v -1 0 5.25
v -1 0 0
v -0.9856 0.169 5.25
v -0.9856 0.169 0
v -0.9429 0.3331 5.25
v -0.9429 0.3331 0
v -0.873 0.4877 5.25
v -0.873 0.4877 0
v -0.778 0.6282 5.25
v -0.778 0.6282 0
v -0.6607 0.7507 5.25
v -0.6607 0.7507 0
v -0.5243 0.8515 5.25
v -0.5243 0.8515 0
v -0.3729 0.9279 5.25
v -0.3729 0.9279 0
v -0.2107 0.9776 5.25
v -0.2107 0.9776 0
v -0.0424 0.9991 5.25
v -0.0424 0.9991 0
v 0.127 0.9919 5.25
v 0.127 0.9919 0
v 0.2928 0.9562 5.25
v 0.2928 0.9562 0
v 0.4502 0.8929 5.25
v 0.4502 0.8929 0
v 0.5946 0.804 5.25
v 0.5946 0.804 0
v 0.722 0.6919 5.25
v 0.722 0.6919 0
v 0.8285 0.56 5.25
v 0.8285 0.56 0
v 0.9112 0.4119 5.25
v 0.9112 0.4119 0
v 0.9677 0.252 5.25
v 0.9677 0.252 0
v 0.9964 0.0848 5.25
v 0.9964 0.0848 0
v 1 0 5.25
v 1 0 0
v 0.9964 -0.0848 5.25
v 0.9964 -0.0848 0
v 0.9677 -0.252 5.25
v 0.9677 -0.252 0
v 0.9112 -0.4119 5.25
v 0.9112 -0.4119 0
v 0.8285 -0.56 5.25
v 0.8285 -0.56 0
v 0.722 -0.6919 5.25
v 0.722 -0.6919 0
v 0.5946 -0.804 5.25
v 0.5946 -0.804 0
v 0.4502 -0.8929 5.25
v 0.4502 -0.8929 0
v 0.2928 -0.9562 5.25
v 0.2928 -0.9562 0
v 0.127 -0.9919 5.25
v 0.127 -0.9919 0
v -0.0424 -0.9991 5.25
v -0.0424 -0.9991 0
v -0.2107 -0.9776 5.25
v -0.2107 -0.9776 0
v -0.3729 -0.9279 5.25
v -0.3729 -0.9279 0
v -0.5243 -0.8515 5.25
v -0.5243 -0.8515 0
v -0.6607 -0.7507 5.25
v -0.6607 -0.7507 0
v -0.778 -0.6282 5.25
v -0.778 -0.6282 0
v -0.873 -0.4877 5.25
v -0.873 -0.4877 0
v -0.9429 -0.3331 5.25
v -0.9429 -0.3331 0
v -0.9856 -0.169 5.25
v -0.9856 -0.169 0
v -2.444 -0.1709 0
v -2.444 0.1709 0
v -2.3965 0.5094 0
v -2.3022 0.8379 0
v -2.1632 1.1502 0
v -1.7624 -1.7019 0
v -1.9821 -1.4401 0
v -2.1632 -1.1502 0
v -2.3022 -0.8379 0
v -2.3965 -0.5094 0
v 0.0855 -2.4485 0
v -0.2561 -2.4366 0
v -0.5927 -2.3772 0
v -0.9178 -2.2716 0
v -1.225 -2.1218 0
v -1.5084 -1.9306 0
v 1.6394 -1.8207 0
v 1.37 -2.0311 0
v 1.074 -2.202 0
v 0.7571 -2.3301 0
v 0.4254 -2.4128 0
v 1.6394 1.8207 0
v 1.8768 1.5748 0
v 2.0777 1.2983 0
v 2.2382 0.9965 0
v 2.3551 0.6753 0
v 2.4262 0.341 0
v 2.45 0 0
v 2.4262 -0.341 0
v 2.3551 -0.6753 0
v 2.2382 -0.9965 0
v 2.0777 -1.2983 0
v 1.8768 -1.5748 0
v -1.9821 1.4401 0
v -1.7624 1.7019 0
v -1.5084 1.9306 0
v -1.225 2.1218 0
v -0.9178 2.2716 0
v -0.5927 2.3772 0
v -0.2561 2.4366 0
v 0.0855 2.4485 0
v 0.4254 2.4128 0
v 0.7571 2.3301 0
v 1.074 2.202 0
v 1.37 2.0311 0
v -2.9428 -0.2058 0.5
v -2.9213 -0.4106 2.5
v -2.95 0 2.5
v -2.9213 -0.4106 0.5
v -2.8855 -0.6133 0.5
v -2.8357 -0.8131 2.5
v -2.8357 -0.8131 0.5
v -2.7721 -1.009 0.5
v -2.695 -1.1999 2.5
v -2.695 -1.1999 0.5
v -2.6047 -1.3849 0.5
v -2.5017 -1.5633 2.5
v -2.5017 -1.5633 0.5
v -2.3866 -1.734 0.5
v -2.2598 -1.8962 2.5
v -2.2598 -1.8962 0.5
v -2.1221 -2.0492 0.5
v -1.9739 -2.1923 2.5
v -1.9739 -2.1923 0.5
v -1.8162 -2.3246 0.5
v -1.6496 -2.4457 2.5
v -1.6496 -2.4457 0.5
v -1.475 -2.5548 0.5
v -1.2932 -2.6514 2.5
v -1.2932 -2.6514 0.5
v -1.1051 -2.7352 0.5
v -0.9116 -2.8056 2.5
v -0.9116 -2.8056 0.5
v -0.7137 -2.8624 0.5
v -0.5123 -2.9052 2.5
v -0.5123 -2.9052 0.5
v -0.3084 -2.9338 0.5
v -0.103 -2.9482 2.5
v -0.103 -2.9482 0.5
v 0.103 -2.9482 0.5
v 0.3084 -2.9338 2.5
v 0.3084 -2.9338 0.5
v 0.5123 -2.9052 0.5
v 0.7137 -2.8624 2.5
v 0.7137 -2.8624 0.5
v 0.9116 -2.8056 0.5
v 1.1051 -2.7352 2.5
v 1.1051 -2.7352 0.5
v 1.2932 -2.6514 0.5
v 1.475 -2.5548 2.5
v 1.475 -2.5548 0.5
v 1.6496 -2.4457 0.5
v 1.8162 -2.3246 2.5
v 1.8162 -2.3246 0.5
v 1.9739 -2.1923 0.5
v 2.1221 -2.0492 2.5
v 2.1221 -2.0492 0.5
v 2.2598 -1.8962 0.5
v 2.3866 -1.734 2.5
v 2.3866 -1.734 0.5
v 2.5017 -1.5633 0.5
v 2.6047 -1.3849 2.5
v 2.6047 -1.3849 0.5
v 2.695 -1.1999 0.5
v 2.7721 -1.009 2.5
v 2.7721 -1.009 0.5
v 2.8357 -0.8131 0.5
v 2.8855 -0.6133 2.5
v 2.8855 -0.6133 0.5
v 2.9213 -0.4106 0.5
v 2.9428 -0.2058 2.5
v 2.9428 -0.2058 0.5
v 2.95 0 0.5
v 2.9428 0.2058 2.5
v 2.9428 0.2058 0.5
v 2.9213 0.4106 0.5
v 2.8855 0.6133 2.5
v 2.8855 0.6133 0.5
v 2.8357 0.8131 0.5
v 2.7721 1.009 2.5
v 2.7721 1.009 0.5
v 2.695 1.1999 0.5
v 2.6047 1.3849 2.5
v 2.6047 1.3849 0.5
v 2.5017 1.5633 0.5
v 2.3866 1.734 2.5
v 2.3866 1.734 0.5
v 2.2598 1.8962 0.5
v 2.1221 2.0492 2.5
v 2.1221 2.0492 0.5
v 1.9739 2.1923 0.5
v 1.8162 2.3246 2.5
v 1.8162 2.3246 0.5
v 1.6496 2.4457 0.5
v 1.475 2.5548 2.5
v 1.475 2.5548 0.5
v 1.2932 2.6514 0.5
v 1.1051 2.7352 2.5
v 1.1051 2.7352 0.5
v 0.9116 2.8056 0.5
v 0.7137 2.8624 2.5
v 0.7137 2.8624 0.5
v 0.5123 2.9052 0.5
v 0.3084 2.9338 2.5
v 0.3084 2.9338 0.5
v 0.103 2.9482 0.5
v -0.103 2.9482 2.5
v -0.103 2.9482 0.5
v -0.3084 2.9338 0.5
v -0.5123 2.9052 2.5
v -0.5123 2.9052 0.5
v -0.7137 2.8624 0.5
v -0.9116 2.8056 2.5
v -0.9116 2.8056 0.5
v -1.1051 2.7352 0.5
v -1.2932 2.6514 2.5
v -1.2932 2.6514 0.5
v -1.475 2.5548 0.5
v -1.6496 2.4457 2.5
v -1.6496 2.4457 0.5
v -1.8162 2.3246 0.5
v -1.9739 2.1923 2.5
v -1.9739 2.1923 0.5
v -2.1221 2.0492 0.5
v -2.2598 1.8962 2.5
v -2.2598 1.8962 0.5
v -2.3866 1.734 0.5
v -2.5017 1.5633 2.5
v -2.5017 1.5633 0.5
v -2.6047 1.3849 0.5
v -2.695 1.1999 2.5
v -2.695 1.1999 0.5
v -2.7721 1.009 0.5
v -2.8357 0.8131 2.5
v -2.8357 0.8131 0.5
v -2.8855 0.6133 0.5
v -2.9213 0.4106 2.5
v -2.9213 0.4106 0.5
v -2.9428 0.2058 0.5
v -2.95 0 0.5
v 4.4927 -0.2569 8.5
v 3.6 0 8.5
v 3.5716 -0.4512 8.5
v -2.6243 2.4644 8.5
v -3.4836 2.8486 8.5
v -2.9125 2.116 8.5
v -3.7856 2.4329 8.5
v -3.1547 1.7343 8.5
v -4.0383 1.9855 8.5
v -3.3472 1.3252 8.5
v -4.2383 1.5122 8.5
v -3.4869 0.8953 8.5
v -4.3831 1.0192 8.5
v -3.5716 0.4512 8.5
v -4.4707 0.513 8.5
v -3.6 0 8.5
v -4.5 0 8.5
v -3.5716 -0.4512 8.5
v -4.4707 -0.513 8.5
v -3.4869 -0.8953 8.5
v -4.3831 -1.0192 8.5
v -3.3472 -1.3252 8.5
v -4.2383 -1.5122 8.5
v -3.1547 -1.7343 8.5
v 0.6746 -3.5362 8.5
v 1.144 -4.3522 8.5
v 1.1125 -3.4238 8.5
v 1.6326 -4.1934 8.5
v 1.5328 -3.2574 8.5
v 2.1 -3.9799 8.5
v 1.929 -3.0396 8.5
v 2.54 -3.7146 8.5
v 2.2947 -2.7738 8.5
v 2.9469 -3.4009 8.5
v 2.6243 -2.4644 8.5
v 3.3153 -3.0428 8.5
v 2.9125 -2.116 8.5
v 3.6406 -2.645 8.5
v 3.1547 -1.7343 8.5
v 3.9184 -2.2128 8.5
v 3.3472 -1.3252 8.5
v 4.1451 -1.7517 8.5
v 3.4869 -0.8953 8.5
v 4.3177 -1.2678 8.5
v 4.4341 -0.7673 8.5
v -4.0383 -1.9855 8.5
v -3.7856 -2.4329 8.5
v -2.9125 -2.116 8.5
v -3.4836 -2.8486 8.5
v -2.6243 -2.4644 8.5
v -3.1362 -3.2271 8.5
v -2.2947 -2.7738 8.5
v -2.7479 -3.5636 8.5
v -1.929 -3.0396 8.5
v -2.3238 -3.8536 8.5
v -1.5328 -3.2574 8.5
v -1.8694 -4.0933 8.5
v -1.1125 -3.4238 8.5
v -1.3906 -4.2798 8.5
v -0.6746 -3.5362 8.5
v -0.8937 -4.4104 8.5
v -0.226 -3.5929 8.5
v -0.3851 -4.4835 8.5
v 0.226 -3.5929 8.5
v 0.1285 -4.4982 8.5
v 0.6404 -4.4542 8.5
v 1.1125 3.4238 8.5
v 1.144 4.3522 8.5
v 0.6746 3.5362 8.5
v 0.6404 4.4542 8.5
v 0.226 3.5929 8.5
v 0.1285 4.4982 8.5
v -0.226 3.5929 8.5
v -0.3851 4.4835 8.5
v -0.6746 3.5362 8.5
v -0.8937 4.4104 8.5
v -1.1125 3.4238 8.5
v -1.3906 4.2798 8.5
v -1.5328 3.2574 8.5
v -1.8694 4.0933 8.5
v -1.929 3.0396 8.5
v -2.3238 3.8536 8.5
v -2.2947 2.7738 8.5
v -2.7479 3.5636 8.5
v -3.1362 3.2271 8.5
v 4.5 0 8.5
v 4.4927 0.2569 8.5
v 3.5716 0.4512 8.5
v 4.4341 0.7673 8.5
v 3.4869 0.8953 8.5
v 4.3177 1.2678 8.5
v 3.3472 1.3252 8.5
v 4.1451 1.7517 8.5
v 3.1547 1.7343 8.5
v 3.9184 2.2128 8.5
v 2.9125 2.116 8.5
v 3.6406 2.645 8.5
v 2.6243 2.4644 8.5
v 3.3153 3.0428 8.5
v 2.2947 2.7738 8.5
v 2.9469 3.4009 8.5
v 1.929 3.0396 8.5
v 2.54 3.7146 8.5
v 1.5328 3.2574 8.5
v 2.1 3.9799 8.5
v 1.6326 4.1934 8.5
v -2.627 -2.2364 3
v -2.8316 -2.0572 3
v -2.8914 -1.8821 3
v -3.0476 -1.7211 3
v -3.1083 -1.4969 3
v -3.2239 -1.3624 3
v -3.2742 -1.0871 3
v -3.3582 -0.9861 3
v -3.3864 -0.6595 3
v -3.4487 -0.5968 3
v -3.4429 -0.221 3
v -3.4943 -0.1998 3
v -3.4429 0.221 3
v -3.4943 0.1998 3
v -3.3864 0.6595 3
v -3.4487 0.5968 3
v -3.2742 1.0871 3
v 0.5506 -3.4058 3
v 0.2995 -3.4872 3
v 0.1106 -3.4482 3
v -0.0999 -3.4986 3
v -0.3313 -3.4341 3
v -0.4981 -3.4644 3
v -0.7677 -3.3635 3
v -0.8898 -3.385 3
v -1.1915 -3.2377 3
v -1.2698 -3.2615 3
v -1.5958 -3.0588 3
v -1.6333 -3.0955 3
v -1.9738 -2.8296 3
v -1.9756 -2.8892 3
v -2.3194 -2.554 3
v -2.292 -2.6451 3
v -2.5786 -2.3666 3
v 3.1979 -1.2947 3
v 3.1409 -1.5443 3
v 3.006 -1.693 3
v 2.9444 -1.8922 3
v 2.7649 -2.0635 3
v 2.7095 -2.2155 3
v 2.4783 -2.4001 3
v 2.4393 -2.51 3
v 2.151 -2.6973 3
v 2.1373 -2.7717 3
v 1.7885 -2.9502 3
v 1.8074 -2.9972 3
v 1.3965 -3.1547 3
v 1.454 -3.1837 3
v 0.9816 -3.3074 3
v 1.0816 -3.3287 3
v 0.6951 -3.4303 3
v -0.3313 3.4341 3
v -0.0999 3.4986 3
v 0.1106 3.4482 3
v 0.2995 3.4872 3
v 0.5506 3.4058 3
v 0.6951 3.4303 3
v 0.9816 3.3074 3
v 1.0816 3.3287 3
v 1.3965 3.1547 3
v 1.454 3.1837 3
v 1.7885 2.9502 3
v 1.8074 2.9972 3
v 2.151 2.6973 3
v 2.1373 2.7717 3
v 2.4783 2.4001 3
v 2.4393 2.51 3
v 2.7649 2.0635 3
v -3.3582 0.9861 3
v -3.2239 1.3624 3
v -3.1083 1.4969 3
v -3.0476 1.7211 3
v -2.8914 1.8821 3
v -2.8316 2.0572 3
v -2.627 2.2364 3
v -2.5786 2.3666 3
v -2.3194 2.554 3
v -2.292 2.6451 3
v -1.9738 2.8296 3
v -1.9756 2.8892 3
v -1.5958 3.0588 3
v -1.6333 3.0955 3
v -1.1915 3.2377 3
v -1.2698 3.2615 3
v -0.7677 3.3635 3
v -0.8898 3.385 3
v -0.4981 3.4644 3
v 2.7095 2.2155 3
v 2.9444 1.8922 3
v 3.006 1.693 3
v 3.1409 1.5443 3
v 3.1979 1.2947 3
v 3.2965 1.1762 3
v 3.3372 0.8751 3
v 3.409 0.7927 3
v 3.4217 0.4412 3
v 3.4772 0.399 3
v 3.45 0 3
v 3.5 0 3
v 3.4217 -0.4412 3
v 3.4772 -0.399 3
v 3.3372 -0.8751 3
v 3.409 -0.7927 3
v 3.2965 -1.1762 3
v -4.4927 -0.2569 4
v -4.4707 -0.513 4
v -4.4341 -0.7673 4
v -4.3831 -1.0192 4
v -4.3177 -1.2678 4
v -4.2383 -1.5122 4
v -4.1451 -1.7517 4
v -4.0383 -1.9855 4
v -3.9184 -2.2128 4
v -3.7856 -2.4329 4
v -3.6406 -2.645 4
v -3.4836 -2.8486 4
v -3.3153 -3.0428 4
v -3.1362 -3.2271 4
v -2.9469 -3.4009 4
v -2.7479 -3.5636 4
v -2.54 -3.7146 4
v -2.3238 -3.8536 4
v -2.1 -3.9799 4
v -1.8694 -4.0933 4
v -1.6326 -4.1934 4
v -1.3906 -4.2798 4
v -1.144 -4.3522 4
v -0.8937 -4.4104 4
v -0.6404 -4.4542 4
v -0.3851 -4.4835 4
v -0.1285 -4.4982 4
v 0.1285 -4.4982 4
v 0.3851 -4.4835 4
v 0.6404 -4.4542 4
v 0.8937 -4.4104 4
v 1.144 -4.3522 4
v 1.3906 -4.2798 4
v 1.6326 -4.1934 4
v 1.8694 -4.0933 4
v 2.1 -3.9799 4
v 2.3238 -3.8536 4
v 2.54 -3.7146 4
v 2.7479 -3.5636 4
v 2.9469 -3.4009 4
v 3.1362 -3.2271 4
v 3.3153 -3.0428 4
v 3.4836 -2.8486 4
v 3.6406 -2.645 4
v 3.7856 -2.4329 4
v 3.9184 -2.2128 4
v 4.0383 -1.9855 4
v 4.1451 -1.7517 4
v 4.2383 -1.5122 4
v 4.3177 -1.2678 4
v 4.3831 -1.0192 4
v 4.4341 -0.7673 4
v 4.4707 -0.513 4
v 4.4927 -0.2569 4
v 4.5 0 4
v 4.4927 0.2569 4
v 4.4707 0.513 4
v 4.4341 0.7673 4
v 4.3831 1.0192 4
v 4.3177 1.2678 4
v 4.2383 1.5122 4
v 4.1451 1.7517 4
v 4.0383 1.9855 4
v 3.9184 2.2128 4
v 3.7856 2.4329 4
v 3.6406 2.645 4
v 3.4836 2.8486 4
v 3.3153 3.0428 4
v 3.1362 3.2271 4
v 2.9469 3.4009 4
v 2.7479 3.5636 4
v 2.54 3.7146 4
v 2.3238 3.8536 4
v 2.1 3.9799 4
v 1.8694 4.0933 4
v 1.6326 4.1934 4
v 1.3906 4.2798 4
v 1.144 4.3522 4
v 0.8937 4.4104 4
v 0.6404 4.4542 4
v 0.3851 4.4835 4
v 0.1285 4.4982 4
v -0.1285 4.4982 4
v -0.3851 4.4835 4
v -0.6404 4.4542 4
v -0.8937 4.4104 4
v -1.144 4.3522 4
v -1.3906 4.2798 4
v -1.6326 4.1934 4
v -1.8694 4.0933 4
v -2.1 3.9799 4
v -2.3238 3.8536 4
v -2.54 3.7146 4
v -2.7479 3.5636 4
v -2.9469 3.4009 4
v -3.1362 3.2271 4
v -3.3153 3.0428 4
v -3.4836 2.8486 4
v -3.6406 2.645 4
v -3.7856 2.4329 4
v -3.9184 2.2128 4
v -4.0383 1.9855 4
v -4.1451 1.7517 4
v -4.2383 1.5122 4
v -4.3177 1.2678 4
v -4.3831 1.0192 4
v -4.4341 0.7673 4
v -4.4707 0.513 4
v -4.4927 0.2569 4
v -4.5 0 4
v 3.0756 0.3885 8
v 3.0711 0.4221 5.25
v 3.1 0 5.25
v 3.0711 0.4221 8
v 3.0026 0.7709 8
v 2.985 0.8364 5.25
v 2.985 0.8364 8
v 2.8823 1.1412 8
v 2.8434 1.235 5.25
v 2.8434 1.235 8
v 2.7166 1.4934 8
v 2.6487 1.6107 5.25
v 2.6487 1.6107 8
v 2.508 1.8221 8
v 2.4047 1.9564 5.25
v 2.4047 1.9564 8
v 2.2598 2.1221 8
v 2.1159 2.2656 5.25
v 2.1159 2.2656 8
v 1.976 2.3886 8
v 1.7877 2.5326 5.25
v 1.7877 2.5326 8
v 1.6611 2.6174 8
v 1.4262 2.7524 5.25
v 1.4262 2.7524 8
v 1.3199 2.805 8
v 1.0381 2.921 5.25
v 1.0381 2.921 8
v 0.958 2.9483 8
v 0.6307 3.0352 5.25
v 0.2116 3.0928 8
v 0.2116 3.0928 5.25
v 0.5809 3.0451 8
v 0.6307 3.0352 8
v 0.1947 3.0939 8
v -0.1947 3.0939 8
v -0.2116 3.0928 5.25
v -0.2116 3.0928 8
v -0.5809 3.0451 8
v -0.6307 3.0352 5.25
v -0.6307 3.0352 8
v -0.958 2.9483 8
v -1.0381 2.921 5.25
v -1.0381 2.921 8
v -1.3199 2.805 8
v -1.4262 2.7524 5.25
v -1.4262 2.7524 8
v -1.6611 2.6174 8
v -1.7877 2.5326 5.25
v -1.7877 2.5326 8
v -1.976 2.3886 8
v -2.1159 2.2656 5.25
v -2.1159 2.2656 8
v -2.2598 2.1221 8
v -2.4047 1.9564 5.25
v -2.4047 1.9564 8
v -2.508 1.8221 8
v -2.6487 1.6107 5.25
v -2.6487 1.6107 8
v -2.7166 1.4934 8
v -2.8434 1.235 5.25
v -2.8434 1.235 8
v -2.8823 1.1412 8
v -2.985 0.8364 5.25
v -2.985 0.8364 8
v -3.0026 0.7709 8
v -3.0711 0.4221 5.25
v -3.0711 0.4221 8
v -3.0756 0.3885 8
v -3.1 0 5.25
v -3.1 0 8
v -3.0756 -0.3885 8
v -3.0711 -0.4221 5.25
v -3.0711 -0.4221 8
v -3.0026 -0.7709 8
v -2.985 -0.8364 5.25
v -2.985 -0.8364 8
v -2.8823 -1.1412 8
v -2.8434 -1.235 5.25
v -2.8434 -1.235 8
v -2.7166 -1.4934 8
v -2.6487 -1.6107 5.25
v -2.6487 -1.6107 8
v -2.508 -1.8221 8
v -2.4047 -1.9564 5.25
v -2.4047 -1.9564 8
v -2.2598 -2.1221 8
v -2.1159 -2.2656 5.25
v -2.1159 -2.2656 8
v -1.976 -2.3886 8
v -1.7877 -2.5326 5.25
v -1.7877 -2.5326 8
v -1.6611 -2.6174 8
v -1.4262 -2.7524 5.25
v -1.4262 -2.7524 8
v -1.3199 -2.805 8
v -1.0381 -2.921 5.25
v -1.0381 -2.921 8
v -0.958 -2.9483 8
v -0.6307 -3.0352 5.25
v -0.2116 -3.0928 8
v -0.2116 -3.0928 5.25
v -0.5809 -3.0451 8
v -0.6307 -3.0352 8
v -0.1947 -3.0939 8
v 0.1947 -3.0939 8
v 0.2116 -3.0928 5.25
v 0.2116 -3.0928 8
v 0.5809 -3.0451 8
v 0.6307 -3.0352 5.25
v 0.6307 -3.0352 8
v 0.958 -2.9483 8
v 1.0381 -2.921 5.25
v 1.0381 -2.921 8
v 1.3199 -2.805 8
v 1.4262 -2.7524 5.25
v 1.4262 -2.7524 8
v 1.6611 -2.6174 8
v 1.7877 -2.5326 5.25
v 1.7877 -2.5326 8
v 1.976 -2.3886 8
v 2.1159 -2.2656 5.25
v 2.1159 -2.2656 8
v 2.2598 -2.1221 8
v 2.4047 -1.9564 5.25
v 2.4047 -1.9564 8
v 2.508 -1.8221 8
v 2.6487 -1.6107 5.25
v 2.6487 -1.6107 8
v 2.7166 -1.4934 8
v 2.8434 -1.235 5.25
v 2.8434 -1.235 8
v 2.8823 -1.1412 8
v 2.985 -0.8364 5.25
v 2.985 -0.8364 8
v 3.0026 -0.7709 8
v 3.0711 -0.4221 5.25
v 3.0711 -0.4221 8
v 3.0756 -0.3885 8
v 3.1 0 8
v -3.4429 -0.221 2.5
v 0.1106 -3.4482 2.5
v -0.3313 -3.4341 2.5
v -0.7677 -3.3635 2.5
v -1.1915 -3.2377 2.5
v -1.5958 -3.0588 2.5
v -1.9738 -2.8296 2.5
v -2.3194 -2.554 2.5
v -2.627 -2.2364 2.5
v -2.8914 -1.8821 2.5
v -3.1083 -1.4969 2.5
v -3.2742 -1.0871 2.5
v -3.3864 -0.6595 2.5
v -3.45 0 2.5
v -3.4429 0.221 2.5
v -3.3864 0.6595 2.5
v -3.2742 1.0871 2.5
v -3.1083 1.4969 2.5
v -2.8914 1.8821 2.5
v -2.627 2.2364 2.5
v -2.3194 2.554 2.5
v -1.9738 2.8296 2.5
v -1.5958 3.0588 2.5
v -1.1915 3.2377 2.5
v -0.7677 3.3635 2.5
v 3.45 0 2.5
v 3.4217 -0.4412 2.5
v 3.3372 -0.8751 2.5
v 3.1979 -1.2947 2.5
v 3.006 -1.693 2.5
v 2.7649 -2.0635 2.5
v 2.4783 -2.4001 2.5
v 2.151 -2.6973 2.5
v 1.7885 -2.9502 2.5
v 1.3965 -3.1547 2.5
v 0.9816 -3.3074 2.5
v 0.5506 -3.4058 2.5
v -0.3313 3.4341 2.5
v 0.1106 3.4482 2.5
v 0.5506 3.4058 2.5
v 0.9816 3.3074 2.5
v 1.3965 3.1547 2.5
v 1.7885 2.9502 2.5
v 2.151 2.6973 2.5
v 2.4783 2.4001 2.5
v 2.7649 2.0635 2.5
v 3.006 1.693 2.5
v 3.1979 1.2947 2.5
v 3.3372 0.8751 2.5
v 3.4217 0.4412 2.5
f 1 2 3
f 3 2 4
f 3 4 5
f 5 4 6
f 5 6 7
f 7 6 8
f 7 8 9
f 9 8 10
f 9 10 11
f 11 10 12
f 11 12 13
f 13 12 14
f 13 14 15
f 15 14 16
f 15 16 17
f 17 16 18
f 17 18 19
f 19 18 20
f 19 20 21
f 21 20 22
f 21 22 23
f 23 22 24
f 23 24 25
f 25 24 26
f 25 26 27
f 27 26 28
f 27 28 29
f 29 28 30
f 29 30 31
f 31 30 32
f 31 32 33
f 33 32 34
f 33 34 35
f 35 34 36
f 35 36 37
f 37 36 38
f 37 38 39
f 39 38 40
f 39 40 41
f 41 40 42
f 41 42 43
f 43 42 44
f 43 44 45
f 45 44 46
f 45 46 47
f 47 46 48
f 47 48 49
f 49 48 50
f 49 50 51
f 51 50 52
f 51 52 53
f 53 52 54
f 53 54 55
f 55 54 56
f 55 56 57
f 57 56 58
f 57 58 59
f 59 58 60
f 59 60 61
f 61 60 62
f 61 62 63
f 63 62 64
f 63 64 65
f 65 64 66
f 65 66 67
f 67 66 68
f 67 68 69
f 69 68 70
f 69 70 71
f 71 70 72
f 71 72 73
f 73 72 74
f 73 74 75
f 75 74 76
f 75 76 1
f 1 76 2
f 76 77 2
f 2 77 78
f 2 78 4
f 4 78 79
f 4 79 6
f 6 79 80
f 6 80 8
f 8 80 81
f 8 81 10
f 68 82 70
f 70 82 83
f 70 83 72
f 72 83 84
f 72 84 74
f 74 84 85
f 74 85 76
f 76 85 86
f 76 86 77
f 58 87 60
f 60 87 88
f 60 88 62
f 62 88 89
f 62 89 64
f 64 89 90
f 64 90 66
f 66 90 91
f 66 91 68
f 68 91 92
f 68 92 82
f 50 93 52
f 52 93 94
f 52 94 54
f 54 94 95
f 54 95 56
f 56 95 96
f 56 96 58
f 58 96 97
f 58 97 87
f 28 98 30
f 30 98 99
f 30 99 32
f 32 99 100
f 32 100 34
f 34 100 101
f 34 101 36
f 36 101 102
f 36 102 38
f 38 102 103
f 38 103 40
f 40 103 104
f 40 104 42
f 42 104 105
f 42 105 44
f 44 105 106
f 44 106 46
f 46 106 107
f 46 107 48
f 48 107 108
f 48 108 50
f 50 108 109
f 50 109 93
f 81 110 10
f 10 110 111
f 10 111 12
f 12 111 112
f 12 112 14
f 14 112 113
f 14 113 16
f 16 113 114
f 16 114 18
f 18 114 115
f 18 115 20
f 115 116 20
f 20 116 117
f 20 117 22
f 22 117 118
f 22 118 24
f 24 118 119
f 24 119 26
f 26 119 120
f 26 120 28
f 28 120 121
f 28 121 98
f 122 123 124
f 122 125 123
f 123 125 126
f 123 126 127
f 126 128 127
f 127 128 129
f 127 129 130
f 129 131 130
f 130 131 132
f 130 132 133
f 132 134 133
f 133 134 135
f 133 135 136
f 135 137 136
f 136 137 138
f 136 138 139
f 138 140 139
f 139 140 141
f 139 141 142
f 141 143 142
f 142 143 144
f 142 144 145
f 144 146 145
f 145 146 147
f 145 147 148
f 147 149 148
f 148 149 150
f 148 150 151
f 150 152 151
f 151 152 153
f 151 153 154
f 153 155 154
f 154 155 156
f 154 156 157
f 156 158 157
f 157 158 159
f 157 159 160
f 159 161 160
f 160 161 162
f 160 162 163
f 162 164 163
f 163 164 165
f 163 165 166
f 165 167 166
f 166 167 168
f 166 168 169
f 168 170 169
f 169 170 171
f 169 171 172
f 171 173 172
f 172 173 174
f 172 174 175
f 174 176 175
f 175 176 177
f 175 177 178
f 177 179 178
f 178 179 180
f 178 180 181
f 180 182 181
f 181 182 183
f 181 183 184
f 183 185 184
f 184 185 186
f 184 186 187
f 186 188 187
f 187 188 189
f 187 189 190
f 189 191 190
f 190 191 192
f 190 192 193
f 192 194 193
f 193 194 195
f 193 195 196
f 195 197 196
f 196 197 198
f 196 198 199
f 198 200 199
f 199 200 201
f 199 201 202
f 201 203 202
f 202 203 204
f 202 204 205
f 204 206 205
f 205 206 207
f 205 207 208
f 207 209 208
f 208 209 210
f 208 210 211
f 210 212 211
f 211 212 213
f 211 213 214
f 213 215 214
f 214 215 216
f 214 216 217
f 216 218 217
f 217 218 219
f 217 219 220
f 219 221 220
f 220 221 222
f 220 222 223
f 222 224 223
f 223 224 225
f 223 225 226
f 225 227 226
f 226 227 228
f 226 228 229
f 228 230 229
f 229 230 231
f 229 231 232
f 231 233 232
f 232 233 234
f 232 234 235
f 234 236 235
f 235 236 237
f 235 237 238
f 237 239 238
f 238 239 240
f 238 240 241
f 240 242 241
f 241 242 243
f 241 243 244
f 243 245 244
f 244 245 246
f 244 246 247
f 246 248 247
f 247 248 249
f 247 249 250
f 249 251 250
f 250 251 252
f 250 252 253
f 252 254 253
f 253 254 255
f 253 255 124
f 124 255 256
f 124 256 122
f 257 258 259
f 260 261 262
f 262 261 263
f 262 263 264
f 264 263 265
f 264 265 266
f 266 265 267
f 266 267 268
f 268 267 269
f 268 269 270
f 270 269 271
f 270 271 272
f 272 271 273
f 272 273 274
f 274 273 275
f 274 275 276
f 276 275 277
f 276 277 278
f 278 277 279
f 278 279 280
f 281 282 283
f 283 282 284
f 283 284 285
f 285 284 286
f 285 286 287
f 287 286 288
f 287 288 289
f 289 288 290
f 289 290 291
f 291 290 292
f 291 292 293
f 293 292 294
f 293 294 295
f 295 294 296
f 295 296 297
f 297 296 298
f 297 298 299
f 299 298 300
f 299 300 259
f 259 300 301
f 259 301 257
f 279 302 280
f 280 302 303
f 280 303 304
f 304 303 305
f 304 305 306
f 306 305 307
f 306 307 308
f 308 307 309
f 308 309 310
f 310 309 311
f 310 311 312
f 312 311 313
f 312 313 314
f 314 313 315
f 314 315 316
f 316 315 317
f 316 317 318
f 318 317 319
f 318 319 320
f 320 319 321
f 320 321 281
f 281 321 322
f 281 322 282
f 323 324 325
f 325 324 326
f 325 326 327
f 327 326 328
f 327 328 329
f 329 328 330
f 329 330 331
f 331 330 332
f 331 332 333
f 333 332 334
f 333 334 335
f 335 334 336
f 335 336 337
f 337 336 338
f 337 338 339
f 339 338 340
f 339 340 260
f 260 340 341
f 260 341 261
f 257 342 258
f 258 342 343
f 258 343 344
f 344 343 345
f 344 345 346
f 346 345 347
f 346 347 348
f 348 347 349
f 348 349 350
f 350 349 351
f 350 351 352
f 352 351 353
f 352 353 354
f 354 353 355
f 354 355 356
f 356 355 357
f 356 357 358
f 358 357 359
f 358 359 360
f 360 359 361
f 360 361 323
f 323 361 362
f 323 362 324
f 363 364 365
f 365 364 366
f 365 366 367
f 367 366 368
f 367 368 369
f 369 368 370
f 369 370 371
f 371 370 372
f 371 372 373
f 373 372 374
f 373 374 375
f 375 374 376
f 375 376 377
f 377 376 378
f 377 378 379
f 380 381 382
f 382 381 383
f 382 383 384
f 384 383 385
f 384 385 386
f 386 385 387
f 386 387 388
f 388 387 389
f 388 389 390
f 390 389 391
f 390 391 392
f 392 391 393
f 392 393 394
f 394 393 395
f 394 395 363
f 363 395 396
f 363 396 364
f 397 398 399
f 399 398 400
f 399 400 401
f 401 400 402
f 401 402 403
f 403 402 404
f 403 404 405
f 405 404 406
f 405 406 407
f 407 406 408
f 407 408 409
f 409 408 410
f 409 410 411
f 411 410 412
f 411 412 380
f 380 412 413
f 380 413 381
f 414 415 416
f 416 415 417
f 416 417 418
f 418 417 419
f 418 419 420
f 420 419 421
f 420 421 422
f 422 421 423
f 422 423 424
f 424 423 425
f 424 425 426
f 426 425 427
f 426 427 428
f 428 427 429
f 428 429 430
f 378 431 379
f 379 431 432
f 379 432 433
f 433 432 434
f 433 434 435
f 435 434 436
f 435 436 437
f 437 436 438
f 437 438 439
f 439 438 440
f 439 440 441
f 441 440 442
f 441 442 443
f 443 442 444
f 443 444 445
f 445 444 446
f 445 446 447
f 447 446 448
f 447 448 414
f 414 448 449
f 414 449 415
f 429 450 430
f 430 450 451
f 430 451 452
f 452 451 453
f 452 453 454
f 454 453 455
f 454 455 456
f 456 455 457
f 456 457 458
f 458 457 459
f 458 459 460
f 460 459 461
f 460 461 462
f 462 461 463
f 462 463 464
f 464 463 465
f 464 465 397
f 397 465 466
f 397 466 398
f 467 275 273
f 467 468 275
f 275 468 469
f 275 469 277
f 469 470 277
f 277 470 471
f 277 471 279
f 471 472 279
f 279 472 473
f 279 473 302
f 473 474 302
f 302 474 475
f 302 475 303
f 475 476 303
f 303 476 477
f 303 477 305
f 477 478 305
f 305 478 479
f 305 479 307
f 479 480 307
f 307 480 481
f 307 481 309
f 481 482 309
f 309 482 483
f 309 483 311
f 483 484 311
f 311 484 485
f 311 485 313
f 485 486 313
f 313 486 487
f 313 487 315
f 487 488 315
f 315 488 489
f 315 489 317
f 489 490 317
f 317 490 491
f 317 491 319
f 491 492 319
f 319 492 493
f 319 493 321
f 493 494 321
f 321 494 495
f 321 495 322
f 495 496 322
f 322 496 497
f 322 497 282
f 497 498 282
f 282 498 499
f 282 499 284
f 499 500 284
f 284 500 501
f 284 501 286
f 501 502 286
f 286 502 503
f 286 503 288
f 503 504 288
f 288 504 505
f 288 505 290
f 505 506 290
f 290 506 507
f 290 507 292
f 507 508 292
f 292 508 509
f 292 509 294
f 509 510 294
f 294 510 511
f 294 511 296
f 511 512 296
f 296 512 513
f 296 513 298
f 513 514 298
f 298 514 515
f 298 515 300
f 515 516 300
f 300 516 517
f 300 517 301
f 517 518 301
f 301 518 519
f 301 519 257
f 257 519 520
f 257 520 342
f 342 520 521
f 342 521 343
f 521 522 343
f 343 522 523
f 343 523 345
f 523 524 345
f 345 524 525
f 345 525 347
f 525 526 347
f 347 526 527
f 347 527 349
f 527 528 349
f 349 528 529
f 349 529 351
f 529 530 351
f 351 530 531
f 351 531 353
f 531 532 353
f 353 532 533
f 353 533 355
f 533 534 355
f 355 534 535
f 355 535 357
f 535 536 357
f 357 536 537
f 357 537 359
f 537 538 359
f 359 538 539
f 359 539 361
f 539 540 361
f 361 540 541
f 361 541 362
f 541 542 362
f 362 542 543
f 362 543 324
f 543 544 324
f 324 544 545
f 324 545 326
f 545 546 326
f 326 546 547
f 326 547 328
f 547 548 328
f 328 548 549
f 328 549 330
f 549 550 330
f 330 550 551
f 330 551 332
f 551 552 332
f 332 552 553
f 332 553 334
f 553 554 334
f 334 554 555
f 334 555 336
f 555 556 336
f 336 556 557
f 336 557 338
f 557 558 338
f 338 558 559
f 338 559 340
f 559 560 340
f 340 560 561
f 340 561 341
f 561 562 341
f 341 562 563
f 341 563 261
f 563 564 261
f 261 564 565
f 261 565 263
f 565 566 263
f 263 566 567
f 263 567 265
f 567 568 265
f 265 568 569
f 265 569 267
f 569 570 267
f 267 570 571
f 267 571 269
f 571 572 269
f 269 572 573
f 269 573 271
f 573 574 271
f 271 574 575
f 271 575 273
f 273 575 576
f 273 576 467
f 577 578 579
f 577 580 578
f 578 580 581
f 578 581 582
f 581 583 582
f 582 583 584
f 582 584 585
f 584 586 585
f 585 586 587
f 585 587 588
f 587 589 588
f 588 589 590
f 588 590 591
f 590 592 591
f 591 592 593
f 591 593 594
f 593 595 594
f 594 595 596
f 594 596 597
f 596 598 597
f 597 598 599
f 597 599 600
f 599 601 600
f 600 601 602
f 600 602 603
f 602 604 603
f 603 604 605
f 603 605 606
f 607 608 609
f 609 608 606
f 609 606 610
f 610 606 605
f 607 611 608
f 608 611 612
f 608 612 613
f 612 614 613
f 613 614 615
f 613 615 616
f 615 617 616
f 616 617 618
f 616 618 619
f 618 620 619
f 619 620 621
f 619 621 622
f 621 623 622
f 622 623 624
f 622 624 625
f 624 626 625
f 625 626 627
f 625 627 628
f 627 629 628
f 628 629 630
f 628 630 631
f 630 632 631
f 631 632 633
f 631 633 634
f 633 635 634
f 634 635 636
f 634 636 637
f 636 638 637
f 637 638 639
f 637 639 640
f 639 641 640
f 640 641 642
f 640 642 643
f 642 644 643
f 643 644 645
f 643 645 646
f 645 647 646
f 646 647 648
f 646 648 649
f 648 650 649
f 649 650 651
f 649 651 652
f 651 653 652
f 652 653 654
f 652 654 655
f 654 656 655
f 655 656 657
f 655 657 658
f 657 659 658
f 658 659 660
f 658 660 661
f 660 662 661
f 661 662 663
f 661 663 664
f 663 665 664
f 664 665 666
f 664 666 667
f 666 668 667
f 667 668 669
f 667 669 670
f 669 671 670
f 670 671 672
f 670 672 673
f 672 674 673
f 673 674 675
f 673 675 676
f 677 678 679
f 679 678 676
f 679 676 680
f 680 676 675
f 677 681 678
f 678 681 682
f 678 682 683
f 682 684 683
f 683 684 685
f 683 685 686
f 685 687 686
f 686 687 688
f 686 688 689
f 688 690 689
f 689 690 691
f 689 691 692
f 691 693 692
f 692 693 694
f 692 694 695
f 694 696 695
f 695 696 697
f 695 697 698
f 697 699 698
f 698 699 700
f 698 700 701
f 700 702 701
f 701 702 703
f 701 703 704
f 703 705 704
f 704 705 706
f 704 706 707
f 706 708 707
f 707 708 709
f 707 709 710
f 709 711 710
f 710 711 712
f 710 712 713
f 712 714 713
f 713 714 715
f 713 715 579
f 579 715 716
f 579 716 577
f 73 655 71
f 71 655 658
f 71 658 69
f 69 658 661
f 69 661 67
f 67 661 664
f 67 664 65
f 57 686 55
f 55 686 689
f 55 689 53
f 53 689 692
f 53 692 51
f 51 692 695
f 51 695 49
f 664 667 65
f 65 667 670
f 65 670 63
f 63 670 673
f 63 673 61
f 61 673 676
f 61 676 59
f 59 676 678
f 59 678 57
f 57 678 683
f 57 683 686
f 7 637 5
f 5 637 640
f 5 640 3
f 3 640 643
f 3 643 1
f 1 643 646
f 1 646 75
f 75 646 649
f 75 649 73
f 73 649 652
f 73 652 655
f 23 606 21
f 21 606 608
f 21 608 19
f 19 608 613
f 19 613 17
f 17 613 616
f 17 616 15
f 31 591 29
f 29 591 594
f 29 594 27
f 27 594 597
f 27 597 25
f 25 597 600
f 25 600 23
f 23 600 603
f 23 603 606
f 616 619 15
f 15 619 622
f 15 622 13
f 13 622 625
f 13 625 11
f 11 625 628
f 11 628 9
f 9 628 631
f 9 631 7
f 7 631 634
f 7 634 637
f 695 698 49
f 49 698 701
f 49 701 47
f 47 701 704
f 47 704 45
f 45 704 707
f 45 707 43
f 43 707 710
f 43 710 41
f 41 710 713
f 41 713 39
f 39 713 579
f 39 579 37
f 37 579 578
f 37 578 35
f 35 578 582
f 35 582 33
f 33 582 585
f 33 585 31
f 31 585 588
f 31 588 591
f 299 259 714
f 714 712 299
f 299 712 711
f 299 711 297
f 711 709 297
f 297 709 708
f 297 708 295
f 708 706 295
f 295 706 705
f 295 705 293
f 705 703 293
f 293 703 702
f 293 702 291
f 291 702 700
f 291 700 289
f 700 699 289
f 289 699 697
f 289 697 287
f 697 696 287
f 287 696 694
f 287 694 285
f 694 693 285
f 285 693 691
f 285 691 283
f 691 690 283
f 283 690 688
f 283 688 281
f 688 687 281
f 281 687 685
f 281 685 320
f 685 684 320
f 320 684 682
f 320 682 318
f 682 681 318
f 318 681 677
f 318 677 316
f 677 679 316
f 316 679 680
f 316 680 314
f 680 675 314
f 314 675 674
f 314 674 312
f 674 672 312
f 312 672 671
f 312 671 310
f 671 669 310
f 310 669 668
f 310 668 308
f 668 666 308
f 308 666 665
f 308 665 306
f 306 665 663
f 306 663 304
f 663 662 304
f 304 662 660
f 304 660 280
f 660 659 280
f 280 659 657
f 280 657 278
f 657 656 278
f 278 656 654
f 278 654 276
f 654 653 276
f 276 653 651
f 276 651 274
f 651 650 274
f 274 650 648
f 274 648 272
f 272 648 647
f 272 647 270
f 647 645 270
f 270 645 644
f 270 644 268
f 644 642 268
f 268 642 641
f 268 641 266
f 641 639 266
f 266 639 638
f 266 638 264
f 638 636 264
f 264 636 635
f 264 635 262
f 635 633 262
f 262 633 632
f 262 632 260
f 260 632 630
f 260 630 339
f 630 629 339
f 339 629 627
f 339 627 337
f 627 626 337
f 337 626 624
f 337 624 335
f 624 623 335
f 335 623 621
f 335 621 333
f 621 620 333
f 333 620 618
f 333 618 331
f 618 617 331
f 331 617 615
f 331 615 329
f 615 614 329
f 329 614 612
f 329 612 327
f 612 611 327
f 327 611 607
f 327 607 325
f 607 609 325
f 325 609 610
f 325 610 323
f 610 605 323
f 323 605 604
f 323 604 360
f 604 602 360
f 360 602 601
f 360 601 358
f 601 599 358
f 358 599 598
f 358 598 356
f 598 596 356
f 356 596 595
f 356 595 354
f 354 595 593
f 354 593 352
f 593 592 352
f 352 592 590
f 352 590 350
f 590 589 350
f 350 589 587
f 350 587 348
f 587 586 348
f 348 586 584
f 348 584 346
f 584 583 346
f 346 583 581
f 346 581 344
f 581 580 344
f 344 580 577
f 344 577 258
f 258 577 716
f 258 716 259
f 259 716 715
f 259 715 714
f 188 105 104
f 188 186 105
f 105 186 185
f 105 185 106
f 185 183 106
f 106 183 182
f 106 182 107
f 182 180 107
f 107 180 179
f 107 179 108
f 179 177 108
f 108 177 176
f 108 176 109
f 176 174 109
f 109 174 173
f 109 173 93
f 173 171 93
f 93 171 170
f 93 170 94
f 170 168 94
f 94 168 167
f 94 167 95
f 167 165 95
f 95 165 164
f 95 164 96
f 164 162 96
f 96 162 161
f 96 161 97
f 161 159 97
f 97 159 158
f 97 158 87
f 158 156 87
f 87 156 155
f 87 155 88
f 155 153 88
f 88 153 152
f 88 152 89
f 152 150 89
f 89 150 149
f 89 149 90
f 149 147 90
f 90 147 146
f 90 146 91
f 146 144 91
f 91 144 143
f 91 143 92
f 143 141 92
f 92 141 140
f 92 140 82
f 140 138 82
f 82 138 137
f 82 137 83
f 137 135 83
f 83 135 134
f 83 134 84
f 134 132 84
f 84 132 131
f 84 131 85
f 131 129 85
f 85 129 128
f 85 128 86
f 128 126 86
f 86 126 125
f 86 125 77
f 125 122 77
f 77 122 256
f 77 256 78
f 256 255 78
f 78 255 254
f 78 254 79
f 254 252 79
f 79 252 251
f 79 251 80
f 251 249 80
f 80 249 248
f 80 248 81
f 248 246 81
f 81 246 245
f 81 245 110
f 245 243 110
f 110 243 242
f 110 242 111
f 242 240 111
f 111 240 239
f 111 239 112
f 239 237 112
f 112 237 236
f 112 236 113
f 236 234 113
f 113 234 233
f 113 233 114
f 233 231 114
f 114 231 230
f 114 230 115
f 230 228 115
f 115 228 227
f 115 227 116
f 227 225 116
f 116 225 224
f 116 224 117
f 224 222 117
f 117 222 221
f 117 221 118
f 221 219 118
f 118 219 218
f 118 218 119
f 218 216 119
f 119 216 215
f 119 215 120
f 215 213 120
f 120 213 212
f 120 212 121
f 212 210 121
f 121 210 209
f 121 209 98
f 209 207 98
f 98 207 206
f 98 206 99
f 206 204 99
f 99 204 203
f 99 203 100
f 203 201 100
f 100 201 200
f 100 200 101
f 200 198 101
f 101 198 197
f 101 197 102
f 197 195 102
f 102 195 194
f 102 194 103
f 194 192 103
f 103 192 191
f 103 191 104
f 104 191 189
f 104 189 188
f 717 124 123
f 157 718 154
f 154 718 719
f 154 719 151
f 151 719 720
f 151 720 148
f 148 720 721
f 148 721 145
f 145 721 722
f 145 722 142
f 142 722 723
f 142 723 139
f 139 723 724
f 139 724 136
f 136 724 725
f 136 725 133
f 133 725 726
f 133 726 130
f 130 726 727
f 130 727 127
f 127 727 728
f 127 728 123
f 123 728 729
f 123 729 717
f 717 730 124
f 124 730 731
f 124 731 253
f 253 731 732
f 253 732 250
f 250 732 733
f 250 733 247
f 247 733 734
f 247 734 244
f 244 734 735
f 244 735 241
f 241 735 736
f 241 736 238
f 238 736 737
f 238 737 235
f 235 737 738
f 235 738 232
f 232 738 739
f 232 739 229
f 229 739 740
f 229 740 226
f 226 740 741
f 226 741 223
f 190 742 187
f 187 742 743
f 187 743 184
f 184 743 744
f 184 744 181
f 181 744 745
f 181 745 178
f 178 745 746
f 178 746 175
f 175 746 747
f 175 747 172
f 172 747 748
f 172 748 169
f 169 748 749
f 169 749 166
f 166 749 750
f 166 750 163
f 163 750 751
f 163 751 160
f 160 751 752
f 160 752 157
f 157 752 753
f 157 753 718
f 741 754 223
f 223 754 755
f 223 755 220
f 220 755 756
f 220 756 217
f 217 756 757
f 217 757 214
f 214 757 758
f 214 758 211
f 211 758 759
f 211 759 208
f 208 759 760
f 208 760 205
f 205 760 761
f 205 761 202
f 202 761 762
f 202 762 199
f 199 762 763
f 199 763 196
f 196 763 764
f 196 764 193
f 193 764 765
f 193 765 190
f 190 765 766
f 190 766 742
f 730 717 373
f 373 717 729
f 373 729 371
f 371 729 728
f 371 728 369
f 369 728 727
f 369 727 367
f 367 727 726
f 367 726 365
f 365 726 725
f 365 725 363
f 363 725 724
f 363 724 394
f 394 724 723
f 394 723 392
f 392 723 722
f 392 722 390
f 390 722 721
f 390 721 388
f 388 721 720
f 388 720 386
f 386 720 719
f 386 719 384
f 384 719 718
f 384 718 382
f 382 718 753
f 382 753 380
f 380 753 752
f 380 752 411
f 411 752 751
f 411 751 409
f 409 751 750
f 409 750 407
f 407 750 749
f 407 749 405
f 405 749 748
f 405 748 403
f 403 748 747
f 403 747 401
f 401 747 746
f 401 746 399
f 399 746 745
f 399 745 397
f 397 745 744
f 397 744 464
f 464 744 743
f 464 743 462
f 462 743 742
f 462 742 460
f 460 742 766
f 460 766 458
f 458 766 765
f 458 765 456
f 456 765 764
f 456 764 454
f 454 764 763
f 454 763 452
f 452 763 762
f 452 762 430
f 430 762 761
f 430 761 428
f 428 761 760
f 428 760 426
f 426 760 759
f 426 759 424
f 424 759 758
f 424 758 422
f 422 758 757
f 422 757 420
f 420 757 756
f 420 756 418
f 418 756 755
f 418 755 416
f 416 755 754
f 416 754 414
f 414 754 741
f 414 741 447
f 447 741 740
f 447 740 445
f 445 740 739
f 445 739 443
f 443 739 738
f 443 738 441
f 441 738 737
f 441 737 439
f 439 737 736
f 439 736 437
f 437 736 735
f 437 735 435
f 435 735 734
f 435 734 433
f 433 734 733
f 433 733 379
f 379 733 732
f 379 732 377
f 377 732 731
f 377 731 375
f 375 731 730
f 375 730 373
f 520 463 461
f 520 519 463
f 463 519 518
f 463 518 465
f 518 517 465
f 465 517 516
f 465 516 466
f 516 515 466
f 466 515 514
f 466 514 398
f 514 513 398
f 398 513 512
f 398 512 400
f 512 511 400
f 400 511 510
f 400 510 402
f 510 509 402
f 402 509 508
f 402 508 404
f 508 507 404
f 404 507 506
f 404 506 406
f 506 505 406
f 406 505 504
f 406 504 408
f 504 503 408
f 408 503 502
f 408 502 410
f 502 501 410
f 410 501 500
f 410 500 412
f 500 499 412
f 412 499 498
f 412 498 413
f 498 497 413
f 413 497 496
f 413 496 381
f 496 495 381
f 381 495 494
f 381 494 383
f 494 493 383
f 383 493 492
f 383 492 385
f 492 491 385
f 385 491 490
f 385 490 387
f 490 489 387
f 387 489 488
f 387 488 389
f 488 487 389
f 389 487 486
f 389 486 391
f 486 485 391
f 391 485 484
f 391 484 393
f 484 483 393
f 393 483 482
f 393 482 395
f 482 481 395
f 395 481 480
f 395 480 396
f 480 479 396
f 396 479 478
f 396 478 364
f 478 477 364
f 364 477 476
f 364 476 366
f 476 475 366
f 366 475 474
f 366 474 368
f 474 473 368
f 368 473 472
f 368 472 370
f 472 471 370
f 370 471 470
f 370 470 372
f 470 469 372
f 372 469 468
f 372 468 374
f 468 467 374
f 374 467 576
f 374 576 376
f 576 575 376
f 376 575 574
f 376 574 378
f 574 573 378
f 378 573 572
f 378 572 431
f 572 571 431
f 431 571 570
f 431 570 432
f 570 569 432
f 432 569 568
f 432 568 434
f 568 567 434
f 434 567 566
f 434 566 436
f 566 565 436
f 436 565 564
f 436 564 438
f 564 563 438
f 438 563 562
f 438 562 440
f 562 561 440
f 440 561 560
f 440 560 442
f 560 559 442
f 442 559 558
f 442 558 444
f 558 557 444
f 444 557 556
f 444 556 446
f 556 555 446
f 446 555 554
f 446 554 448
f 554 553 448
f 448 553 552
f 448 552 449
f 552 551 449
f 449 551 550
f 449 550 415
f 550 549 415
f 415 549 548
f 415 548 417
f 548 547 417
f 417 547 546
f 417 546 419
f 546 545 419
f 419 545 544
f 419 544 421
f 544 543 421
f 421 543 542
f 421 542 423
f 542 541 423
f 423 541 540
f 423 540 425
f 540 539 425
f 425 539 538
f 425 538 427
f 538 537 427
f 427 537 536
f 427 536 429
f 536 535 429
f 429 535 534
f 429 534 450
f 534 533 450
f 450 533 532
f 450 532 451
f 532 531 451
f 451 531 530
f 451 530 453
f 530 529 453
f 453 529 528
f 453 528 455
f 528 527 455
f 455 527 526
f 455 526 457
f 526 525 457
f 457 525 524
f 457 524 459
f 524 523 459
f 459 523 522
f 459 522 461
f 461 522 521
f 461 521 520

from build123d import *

# Parameters (mm, degrees)
SKETCH1_R           = 2.95
SKETCH1_R_2         = 1
BOSS_EXTRUDE1_DEPTH = 3
SKETCH2_R           = 4.5
SKETCH2_R_2         = 1
BOSS_EXTRUDE2_DEPTH = 5.5
SKETCH3_R           = 3.1
CUT_EXTRUDE1_DEPTH  = 3.25
CHAMFER1_SIZE       = 0.5
CHAMFER2_SIZE       = 0.5
SKETCH4_R           = 3.45
SKETCH4_R_2         = 1
BOSS_EXTRUDE3_DEPTH = 0.5
CHAMFER3_SIZE       = 1


with BuildPart() as part:
    # Sketch1 → Boss-Extrude1 (new body)
    with BuildSketch(Plane.XY):
        Circle(SKETCH1_R)
        Circle(SKETCH1_R_2, mode=Mode.SUBTRACT)
    extrude(amount=BOSS_EXTRUDE1_DEPTH)

    # Sketch2 → Boss-Extrude2 (add)
    with BuildSketch(Plane.XY.offset(3)):
        Circle(SKETCH2_R)
        Circle(SKETCH2_R_2, mode=Mode.SUBTRACT)
    extrude(amount=BOSS_EXTRUDE2_DEPTH)

    # Sketch3 → Cut-Extrude1 (cut)
    with BuildSketch(Plane.XY.offset(8.5)):
        Circle(SKETCH3_R)
    extrude(amount=-CUT_EXTRUDE1_DEPTH, mode=Mode.SUBTRACT)

    # Chamfer1
    chamfer1_edges = [part.edges().sort_by_distance(p)[0] for p in [
        (-3.1, 0, 8.5),
    ]]
    chamfer(chamfer1_edges, length=CHAMFER1_SIZE)

    # Chamfer2
    chamfer2_edges = [part.edges().sort_by_distance(p)[0] for p in [
        (-2.95, 0, 0),
    ]]
    chamfer(chamfer2_edges, length=CHAMFER2_SIZE)

    # Sketch4 → Boss-Extrude3 (add)
    with BuildSketch(Plane(origin=(0, 0, 3), x_dir=(-1, 0, 0), z_dir=(0, 0, -1))):
        Circle(SKETCH4_R)
        Circle(SKETCH4_R_2, mode=Mode.SUBTRACT)
    extrude(amount=BOSS_EXTRUDE3_DEPTH)

    # Chamfer3
    chamfer3_edges = [part.edges().sort_by_distance(p)[0] for p in [
        (-4.5, 0, 3),
    ]]
    chamfer(chamfer3_edges, length=CHAMFER3_SIZE)


solid = part.part
